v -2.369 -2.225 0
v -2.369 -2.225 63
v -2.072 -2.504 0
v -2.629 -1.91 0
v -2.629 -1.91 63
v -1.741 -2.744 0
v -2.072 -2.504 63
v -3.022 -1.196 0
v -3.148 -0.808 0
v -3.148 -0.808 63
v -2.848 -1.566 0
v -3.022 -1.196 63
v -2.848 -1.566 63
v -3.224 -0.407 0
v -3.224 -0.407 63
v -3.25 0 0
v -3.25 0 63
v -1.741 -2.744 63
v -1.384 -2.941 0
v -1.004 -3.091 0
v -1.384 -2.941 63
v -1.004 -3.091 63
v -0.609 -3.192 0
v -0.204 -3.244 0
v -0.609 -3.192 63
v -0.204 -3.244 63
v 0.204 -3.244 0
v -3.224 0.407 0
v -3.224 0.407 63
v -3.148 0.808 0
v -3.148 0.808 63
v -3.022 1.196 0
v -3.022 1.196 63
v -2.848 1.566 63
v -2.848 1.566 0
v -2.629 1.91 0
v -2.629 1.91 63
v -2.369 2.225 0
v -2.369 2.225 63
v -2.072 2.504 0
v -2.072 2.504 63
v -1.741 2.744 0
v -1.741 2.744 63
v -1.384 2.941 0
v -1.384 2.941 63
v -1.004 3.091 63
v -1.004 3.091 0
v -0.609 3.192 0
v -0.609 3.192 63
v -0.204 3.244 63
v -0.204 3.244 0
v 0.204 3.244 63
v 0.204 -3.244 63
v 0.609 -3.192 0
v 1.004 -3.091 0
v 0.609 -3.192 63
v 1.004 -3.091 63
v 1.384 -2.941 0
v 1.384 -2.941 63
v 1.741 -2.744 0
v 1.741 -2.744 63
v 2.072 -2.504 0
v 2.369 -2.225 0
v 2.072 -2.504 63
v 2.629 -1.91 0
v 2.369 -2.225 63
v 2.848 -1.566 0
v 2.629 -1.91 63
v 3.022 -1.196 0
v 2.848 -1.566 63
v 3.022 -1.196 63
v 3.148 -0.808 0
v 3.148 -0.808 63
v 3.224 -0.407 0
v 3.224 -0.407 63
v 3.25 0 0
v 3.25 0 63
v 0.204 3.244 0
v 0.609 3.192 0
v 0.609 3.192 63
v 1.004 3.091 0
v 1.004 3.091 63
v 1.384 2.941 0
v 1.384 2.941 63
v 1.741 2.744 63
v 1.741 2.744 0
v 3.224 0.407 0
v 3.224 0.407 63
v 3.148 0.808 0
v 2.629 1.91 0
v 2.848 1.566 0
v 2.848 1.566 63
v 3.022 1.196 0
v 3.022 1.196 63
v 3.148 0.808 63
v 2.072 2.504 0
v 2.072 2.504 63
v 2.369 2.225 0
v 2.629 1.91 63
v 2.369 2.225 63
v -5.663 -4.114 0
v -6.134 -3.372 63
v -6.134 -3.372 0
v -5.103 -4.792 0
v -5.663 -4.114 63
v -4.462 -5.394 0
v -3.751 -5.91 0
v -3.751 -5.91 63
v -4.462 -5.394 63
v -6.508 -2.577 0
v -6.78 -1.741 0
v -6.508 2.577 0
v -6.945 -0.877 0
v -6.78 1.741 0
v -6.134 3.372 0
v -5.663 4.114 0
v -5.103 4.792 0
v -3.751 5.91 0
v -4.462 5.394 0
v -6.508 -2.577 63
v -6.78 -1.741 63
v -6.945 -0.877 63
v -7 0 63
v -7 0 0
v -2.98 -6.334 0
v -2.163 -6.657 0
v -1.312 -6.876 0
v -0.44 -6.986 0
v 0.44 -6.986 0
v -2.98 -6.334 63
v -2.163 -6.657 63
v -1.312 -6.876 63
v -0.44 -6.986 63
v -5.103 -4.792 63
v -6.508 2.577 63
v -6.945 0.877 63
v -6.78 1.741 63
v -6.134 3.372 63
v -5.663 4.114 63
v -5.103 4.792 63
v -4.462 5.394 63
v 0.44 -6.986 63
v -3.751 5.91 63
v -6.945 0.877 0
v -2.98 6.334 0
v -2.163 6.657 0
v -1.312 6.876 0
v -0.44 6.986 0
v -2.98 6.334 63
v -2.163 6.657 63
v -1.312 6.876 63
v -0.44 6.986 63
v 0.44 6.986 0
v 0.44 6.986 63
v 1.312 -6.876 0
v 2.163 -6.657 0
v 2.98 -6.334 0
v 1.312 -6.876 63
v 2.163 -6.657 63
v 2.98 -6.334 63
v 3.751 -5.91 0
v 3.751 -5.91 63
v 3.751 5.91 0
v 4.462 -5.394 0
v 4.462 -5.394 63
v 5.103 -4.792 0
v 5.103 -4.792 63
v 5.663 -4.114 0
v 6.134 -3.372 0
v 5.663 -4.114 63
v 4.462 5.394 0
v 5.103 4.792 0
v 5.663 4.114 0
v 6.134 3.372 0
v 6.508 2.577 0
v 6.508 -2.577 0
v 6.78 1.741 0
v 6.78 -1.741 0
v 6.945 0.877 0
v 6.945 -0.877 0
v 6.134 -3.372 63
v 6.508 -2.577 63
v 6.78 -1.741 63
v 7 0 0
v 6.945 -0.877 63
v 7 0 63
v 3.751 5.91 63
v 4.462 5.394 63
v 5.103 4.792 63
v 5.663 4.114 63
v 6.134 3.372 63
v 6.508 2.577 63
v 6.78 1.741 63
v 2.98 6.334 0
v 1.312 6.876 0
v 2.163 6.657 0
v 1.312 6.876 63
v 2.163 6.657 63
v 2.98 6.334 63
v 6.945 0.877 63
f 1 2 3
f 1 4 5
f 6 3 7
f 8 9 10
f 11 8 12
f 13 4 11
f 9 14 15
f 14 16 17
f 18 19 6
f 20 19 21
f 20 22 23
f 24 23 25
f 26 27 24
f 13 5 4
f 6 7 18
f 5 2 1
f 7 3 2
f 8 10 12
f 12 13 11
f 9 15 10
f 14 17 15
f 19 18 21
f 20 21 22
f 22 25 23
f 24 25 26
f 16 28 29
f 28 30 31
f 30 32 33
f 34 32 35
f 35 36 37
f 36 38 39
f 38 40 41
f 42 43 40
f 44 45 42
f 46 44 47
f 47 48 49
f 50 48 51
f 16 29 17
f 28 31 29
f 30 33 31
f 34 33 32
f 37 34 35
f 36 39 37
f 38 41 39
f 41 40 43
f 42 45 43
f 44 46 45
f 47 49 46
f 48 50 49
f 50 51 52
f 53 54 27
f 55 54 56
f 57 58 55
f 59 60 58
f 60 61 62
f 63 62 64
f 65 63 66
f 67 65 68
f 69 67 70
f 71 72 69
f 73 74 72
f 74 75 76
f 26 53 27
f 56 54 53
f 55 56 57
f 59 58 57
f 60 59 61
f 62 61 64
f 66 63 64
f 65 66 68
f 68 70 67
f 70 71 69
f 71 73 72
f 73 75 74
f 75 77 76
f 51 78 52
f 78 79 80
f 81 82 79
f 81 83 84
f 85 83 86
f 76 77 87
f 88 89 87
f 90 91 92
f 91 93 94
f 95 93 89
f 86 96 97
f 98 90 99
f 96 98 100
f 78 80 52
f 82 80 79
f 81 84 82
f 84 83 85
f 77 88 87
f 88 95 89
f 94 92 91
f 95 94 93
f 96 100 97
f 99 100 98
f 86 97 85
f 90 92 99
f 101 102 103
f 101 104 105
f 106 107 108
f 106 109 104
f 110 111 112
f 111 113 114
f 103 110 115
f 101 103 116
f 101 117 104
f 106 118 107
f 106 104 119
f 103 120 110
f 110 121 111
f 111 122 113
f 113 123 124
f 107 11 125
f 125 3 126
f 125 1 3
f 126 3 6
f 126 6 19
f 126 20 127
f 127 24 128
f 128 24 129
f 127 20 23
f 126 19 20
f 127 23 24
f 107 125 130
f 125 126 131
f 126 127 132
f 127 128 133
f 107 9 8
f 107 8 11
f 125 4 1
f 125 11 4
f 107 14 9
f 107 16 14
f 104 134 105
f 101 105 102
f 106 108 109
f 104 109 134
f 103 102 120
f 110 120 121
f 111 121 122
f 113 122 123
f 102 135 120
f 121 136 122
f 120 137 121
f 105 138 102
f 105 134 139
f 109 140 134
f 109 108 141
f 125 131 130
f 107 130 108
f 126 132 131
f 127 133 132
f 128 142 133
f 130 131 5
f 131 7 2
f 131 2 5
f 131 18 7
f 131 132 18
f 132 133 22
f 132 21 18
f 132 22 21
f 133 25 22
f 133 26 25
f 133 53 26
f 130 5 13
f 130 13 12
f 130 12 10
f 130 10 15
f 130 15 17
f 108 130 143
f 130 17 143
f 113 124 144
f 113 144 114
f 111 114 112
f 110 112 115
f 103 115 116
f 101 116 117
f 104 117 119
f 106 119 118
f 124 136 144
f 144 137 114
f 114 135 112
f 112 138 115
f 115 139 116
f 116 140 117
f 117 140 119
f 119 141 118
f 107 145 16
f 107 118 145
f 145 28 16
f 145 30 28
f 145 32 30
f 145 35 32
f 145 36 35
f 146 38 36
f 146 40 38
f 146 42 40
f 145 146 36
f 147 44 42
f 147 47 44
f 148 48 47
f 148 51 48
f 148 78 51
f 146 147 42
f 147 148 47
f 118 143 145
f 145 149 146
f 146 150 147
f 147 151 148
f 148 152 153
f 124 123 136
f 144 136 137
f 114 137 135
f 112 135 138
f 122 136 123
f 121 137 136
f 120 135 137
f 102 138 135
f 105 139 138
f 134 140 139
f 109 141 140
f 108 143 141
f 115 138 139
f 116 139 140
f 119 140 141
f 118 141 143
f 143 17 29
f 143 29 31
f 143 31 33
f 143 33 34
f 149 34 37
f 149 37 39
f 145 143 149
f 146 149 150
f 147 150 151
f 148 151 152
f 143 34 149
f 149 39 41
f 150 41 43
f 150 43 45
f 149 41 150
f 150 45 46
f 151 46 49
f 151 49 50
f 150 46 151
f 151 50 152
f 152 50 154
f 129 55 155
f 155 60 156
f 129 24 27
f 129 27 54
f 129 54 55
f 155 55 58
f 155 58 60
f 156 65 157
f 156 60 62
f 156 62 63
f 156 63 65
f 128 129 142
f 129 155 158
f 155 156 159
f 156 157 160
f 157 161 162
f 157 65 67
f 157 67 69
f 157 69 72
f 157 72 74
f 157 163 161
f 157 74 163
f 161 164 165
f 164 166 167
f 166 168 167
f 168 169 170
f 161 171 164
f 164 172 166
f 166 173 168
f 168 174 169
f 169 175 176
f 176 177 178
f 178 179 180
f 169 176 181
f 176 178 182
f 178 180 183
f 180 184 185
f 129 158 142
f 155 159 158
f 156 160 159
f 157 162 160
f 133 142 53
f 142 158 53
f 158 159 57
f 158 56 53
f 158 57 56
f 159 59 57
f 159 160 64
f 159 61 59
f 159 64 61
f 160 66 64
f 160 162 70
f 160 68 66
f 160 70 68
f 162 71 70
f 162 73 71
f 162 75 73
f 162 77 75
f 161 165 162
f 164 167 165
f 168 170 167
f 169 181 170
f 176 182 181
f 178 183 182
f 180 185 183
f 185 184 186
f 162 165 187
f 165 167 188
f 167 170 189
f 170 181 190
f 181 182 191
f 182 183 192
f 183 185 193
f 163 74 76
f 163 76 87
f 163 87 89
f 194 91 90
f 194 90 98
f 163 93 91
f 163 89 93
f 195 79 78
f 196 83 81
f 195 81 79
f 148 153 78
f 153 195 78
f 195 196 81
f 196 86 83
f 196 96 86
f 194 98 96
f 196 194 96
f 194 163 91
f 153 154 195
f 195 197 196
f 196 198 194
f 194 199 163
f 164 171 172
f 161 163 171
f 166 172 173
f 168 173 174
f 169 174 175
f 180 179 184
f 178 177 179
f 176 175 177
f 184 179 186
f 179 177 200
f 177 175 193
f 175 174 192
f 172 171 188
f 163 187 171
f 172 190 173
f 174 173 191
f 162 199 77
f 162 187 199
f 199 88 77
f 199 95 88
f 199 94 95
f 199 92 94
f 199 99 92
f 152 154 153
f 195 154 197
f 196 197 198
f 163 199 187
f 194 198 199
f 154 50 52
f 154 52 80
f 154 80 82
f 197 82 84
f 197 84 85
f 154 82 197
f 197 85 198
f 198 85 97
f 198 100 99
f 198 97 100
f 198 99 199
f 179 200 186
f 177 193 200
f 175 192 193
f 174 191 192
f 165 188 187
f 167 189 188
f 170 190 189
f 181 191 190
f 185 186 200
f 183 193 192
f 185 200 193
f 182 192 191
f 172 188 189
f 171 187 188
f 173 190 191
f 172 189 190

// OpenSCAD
$fn = 50;

difference() {
	union() {
		cylinder(h = 63, r = 7.0);
	}
	union() {
		cylinder(h = 63, r = 3.25);
		cylinder(h = 63, r = 1.8);
	}
}
